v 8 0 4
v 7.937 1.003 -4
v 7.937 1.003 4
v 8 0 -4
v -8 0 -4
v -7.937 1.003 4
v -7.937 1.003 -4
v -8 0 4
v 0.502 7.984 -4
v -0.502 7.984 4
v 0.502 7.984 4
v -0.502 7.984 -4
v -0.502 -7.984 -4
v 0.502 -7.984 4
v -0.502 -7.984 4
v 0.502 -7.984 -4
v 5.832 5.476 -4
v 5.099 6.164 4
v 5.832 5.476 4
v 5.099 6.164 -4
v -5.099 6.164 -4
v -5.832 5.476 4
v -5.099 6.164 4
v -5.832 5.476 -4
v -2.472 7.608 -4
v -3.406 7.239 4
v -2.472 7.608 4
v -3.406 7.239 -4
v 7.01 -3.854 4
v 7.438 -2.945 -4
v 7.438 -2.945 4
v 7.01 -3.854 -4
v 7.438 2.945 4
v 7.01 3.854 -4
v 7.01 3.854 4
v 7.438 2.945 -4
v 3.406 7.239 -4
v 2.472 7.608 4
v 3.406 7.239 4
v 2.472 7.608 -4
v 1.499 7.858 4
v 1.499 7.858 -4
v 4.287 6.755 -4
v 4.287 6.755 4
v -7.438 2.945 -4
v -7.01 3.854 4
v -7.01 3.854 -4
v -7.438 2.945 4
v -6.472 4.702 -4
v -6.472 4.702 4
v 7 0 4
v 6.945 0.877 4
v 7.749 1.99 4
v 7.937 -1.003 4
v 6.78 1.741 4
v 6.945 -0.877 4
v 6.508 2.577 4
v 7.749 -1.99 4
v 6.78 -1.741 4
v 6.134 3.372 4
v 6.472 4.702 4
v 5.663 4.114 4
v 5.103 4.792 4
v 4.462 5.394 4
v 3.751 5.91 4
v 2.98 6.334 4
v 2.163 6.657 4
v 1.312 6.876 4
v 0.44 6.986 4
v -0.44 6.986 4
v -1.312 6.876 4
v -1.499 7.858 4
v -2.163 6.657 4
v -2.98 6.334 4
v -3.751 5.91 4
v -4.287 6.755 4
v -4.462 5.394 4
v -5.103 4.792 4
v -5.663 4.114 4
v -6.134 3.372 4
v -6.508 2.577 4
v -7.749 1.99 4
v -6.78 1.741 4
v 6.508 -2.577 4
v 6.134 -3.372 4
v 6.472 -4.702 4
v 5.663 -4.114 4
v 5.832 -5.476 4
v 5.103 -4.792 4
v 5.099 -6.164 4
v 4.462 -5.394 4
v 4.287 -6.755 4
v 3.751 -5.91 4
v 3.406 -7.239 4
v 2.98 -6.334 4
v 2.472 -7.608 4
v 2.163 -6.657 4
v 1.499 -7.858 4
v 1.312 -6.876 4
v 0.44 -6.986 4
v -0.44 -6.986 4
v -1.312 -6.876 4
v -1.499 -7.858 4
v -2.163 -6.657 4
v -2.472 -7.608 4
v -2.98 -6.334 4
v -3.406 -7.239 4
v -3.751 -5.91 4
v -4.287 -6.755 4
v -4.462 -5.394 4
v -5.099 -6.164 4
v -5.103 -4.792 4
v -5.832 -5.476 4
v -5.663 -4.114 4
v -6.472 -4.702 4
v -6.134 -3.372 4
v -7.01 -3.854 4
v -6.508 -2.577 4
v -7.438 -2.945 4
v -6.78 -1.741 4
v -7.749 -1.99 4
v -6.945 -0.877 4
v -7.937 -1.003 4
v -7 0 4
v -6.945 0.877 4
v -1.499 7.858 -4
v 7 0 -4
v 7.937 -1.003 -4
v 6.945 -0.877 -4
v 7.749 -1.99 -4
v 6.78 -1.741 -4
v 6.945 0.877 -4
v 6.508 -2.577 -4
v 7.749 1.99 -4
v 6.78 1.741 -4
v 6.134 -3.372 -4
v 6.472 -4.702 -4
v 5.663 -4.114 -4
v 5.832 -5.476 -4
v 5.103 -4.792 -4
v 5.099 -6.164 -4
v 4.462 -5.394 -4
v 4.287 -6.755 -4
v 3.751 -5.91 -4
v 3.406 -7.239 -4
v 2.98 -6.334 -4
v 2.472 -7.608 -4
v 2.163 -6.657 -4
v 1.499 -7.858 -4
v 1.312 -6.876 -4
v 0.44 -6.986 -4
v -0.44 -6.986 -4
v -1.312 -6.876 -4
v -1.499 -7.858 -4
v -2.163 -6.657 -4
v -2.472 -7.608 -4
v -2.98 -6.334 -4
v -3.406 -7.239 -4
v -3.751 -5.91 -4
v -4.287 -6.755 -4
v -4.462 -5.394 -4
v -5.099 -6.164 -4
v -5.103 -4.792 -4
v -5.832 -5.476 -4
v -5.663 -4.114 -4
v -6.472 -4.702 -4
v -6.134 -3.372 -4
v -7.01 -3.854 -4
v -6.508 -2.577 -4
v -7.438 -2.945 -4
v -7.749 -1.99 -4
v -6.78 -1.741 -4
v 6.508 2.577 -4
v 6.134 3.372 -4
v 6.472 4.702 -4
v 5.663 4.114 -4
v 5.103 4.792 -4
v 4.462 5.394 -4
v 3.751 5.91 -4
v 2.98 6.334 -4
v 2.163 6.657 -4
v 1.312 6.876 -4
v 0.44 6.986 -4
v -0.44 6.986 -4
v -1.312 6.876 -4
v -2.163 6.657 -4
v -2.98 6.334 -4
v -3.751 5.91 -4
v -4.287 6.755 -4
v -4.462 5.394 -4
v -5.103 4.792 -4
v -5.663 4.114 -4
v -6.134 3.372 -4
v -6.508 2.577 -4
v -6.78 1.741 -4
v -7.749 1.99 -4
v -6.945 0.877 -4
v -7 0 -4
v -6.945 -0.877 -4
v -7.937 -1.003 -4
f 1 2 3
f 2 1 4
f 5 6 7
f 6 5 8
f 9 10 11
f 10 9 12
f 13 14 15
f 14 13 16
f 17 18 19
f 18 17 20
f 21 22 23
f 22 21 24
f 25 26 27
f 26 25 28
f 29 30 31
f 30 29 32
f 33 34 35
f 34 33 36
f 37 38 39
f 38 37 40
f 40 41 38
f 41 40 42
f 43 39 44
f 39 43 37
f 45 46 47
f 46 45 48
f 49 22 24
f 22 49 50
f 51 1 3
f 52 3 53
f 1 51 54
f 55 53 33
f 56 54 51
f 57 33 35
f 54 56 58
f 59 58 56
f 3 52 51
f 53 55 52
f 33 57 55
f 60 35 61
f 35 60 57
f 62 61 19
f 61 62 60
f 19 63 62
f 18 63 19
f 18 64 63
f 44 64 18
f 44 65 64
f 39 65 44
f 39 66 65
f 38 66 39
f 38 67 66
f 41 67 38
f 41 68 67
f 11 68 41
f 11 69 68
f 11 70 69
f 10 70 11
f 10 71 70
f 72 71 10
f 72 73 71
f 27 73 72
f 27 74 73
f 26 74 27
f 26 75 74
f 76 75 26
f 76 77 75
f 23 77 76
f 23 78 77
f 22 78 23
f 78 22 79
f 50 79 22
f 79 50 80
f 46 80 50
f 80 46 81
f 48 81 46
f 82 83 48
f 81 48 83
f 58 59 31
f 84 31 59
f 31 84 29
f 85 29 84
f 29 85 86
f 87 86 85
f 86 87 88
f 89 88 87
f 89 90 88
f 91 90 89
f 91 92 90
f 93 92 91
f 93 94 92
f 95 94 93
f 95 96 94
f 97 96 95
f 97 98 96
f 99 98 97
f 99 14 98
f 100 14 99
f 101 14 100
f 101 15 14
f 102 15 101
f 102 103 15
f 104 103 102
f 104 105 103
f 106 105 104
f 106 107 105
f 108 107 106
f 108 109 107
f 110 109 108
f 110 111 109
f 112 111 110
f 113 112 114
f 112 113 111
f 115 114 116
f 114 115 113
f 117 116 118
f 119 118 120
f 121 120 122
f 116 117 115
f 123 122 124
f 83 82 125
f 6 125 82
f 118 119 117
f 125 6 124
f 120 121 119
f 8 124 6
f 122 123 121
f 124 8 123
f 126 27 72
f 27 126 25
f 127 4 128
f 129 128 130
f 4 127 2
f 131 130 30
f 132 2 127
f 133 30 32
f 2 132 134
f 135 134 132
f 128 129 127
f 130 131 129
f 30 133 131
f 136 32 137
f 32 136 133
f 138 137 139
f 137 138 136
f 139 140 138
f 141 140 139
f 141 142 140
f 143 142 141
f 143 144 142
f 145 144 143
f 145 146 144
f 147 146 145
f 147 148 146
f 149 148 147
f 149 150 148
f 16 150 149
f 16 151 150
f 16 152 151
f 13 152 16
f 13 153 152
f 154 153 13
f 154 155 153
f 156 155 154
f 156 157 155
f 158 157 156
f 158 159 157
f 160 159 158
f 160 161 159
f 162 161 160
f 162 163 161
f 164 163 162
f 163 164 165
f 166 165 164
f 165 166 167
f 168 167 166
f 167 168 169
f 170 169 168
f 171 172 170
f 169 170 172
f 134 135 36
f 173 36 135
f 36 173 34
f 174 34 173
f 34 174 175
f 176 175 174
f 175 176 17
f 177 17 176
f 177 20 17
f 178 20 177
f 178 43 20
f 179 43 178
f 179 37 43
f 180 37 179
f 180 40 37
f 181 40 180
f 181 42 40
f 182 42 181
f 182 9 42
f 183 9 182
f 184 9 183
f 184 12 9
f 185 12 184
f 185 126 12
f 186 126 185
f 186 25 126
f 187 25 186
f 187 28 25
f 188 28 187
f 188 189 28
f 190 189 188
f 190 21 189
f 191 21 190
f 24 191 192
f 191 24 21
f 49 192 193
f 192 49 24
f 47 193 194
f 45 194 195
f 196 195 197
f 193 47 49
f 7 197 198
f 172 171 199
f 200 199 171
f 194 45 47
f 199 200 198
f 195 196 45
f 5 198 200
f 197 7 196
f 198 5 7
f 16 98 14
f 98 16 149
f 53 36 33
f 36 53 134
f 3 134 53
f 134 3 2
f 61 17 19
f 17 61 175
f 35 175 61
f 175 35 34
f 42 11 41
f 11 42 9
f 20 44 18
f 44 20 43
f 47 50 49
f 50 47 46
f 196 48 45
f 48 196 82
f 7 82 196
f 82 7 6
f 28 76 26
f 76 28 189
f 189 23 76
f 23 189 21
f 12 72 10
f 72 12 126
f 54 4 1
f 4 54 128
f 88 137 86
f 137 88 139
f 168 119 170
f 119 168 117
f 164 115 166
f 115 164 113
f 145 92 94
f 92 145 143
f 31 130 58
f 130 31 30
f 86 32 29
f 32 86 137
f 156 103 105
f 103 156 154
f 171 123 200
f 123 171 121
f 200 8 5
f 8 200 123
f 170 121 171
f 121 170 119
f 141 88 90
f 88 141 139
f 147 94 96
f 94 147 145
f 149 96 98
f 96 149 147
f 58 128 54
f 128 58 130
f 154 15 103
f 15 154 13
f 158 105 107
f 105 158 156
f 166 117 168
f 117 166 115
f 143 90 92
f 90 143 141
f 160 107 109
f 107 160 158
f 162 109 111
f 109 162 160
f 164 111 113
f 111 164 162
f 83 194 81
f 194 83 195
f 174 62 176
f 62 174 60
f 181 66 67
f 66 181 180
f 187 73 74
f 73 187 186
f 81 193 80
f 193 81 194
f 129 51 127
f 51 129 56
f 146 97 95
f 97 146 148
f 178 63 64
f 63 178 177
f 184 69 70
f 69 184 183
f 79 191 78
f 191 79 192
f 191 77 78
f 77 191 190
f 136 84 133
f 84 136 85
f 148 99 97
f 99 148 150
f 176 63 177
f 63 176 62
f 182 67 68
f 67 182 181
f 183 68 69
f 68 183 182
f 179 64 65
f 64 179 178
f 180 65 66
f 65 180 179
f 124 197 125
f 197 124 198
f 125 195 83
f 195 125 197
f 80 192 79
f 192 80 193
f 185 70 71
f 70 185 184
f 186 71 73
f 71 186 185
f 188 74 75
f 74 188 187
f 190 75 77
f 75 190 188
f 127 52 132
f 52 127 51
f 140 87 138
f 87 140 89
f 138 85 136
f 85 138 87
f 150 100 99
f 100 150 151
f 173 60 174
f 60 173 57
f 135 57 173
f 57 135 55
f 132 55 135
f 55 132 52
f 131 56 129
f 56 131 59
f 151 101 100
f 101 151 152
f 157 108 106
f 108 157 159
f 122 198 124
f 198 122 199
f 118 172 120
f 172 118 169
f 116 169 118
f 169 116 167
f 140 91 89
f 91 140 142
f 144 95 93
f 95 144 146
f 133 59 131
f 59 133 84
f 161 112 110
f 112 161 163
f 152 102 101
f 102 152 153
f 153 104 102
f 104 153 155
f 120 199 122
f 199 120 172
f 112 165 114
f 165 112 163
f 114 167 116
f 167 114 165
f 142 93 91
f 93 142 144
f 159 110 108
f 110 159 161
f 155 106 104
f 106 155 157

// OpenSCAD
$fn = 50;


difference() {
	union() {
		translate(v = [0, 0, -4.0000000000]) {
			cylinder(h = 8, r = 8.0000000000);
		}
	}
	union() {
		translate(v = [0, 0, -100.0000000000]) {
			cylinder(h = 200, r = 7);
		}
	}
}
